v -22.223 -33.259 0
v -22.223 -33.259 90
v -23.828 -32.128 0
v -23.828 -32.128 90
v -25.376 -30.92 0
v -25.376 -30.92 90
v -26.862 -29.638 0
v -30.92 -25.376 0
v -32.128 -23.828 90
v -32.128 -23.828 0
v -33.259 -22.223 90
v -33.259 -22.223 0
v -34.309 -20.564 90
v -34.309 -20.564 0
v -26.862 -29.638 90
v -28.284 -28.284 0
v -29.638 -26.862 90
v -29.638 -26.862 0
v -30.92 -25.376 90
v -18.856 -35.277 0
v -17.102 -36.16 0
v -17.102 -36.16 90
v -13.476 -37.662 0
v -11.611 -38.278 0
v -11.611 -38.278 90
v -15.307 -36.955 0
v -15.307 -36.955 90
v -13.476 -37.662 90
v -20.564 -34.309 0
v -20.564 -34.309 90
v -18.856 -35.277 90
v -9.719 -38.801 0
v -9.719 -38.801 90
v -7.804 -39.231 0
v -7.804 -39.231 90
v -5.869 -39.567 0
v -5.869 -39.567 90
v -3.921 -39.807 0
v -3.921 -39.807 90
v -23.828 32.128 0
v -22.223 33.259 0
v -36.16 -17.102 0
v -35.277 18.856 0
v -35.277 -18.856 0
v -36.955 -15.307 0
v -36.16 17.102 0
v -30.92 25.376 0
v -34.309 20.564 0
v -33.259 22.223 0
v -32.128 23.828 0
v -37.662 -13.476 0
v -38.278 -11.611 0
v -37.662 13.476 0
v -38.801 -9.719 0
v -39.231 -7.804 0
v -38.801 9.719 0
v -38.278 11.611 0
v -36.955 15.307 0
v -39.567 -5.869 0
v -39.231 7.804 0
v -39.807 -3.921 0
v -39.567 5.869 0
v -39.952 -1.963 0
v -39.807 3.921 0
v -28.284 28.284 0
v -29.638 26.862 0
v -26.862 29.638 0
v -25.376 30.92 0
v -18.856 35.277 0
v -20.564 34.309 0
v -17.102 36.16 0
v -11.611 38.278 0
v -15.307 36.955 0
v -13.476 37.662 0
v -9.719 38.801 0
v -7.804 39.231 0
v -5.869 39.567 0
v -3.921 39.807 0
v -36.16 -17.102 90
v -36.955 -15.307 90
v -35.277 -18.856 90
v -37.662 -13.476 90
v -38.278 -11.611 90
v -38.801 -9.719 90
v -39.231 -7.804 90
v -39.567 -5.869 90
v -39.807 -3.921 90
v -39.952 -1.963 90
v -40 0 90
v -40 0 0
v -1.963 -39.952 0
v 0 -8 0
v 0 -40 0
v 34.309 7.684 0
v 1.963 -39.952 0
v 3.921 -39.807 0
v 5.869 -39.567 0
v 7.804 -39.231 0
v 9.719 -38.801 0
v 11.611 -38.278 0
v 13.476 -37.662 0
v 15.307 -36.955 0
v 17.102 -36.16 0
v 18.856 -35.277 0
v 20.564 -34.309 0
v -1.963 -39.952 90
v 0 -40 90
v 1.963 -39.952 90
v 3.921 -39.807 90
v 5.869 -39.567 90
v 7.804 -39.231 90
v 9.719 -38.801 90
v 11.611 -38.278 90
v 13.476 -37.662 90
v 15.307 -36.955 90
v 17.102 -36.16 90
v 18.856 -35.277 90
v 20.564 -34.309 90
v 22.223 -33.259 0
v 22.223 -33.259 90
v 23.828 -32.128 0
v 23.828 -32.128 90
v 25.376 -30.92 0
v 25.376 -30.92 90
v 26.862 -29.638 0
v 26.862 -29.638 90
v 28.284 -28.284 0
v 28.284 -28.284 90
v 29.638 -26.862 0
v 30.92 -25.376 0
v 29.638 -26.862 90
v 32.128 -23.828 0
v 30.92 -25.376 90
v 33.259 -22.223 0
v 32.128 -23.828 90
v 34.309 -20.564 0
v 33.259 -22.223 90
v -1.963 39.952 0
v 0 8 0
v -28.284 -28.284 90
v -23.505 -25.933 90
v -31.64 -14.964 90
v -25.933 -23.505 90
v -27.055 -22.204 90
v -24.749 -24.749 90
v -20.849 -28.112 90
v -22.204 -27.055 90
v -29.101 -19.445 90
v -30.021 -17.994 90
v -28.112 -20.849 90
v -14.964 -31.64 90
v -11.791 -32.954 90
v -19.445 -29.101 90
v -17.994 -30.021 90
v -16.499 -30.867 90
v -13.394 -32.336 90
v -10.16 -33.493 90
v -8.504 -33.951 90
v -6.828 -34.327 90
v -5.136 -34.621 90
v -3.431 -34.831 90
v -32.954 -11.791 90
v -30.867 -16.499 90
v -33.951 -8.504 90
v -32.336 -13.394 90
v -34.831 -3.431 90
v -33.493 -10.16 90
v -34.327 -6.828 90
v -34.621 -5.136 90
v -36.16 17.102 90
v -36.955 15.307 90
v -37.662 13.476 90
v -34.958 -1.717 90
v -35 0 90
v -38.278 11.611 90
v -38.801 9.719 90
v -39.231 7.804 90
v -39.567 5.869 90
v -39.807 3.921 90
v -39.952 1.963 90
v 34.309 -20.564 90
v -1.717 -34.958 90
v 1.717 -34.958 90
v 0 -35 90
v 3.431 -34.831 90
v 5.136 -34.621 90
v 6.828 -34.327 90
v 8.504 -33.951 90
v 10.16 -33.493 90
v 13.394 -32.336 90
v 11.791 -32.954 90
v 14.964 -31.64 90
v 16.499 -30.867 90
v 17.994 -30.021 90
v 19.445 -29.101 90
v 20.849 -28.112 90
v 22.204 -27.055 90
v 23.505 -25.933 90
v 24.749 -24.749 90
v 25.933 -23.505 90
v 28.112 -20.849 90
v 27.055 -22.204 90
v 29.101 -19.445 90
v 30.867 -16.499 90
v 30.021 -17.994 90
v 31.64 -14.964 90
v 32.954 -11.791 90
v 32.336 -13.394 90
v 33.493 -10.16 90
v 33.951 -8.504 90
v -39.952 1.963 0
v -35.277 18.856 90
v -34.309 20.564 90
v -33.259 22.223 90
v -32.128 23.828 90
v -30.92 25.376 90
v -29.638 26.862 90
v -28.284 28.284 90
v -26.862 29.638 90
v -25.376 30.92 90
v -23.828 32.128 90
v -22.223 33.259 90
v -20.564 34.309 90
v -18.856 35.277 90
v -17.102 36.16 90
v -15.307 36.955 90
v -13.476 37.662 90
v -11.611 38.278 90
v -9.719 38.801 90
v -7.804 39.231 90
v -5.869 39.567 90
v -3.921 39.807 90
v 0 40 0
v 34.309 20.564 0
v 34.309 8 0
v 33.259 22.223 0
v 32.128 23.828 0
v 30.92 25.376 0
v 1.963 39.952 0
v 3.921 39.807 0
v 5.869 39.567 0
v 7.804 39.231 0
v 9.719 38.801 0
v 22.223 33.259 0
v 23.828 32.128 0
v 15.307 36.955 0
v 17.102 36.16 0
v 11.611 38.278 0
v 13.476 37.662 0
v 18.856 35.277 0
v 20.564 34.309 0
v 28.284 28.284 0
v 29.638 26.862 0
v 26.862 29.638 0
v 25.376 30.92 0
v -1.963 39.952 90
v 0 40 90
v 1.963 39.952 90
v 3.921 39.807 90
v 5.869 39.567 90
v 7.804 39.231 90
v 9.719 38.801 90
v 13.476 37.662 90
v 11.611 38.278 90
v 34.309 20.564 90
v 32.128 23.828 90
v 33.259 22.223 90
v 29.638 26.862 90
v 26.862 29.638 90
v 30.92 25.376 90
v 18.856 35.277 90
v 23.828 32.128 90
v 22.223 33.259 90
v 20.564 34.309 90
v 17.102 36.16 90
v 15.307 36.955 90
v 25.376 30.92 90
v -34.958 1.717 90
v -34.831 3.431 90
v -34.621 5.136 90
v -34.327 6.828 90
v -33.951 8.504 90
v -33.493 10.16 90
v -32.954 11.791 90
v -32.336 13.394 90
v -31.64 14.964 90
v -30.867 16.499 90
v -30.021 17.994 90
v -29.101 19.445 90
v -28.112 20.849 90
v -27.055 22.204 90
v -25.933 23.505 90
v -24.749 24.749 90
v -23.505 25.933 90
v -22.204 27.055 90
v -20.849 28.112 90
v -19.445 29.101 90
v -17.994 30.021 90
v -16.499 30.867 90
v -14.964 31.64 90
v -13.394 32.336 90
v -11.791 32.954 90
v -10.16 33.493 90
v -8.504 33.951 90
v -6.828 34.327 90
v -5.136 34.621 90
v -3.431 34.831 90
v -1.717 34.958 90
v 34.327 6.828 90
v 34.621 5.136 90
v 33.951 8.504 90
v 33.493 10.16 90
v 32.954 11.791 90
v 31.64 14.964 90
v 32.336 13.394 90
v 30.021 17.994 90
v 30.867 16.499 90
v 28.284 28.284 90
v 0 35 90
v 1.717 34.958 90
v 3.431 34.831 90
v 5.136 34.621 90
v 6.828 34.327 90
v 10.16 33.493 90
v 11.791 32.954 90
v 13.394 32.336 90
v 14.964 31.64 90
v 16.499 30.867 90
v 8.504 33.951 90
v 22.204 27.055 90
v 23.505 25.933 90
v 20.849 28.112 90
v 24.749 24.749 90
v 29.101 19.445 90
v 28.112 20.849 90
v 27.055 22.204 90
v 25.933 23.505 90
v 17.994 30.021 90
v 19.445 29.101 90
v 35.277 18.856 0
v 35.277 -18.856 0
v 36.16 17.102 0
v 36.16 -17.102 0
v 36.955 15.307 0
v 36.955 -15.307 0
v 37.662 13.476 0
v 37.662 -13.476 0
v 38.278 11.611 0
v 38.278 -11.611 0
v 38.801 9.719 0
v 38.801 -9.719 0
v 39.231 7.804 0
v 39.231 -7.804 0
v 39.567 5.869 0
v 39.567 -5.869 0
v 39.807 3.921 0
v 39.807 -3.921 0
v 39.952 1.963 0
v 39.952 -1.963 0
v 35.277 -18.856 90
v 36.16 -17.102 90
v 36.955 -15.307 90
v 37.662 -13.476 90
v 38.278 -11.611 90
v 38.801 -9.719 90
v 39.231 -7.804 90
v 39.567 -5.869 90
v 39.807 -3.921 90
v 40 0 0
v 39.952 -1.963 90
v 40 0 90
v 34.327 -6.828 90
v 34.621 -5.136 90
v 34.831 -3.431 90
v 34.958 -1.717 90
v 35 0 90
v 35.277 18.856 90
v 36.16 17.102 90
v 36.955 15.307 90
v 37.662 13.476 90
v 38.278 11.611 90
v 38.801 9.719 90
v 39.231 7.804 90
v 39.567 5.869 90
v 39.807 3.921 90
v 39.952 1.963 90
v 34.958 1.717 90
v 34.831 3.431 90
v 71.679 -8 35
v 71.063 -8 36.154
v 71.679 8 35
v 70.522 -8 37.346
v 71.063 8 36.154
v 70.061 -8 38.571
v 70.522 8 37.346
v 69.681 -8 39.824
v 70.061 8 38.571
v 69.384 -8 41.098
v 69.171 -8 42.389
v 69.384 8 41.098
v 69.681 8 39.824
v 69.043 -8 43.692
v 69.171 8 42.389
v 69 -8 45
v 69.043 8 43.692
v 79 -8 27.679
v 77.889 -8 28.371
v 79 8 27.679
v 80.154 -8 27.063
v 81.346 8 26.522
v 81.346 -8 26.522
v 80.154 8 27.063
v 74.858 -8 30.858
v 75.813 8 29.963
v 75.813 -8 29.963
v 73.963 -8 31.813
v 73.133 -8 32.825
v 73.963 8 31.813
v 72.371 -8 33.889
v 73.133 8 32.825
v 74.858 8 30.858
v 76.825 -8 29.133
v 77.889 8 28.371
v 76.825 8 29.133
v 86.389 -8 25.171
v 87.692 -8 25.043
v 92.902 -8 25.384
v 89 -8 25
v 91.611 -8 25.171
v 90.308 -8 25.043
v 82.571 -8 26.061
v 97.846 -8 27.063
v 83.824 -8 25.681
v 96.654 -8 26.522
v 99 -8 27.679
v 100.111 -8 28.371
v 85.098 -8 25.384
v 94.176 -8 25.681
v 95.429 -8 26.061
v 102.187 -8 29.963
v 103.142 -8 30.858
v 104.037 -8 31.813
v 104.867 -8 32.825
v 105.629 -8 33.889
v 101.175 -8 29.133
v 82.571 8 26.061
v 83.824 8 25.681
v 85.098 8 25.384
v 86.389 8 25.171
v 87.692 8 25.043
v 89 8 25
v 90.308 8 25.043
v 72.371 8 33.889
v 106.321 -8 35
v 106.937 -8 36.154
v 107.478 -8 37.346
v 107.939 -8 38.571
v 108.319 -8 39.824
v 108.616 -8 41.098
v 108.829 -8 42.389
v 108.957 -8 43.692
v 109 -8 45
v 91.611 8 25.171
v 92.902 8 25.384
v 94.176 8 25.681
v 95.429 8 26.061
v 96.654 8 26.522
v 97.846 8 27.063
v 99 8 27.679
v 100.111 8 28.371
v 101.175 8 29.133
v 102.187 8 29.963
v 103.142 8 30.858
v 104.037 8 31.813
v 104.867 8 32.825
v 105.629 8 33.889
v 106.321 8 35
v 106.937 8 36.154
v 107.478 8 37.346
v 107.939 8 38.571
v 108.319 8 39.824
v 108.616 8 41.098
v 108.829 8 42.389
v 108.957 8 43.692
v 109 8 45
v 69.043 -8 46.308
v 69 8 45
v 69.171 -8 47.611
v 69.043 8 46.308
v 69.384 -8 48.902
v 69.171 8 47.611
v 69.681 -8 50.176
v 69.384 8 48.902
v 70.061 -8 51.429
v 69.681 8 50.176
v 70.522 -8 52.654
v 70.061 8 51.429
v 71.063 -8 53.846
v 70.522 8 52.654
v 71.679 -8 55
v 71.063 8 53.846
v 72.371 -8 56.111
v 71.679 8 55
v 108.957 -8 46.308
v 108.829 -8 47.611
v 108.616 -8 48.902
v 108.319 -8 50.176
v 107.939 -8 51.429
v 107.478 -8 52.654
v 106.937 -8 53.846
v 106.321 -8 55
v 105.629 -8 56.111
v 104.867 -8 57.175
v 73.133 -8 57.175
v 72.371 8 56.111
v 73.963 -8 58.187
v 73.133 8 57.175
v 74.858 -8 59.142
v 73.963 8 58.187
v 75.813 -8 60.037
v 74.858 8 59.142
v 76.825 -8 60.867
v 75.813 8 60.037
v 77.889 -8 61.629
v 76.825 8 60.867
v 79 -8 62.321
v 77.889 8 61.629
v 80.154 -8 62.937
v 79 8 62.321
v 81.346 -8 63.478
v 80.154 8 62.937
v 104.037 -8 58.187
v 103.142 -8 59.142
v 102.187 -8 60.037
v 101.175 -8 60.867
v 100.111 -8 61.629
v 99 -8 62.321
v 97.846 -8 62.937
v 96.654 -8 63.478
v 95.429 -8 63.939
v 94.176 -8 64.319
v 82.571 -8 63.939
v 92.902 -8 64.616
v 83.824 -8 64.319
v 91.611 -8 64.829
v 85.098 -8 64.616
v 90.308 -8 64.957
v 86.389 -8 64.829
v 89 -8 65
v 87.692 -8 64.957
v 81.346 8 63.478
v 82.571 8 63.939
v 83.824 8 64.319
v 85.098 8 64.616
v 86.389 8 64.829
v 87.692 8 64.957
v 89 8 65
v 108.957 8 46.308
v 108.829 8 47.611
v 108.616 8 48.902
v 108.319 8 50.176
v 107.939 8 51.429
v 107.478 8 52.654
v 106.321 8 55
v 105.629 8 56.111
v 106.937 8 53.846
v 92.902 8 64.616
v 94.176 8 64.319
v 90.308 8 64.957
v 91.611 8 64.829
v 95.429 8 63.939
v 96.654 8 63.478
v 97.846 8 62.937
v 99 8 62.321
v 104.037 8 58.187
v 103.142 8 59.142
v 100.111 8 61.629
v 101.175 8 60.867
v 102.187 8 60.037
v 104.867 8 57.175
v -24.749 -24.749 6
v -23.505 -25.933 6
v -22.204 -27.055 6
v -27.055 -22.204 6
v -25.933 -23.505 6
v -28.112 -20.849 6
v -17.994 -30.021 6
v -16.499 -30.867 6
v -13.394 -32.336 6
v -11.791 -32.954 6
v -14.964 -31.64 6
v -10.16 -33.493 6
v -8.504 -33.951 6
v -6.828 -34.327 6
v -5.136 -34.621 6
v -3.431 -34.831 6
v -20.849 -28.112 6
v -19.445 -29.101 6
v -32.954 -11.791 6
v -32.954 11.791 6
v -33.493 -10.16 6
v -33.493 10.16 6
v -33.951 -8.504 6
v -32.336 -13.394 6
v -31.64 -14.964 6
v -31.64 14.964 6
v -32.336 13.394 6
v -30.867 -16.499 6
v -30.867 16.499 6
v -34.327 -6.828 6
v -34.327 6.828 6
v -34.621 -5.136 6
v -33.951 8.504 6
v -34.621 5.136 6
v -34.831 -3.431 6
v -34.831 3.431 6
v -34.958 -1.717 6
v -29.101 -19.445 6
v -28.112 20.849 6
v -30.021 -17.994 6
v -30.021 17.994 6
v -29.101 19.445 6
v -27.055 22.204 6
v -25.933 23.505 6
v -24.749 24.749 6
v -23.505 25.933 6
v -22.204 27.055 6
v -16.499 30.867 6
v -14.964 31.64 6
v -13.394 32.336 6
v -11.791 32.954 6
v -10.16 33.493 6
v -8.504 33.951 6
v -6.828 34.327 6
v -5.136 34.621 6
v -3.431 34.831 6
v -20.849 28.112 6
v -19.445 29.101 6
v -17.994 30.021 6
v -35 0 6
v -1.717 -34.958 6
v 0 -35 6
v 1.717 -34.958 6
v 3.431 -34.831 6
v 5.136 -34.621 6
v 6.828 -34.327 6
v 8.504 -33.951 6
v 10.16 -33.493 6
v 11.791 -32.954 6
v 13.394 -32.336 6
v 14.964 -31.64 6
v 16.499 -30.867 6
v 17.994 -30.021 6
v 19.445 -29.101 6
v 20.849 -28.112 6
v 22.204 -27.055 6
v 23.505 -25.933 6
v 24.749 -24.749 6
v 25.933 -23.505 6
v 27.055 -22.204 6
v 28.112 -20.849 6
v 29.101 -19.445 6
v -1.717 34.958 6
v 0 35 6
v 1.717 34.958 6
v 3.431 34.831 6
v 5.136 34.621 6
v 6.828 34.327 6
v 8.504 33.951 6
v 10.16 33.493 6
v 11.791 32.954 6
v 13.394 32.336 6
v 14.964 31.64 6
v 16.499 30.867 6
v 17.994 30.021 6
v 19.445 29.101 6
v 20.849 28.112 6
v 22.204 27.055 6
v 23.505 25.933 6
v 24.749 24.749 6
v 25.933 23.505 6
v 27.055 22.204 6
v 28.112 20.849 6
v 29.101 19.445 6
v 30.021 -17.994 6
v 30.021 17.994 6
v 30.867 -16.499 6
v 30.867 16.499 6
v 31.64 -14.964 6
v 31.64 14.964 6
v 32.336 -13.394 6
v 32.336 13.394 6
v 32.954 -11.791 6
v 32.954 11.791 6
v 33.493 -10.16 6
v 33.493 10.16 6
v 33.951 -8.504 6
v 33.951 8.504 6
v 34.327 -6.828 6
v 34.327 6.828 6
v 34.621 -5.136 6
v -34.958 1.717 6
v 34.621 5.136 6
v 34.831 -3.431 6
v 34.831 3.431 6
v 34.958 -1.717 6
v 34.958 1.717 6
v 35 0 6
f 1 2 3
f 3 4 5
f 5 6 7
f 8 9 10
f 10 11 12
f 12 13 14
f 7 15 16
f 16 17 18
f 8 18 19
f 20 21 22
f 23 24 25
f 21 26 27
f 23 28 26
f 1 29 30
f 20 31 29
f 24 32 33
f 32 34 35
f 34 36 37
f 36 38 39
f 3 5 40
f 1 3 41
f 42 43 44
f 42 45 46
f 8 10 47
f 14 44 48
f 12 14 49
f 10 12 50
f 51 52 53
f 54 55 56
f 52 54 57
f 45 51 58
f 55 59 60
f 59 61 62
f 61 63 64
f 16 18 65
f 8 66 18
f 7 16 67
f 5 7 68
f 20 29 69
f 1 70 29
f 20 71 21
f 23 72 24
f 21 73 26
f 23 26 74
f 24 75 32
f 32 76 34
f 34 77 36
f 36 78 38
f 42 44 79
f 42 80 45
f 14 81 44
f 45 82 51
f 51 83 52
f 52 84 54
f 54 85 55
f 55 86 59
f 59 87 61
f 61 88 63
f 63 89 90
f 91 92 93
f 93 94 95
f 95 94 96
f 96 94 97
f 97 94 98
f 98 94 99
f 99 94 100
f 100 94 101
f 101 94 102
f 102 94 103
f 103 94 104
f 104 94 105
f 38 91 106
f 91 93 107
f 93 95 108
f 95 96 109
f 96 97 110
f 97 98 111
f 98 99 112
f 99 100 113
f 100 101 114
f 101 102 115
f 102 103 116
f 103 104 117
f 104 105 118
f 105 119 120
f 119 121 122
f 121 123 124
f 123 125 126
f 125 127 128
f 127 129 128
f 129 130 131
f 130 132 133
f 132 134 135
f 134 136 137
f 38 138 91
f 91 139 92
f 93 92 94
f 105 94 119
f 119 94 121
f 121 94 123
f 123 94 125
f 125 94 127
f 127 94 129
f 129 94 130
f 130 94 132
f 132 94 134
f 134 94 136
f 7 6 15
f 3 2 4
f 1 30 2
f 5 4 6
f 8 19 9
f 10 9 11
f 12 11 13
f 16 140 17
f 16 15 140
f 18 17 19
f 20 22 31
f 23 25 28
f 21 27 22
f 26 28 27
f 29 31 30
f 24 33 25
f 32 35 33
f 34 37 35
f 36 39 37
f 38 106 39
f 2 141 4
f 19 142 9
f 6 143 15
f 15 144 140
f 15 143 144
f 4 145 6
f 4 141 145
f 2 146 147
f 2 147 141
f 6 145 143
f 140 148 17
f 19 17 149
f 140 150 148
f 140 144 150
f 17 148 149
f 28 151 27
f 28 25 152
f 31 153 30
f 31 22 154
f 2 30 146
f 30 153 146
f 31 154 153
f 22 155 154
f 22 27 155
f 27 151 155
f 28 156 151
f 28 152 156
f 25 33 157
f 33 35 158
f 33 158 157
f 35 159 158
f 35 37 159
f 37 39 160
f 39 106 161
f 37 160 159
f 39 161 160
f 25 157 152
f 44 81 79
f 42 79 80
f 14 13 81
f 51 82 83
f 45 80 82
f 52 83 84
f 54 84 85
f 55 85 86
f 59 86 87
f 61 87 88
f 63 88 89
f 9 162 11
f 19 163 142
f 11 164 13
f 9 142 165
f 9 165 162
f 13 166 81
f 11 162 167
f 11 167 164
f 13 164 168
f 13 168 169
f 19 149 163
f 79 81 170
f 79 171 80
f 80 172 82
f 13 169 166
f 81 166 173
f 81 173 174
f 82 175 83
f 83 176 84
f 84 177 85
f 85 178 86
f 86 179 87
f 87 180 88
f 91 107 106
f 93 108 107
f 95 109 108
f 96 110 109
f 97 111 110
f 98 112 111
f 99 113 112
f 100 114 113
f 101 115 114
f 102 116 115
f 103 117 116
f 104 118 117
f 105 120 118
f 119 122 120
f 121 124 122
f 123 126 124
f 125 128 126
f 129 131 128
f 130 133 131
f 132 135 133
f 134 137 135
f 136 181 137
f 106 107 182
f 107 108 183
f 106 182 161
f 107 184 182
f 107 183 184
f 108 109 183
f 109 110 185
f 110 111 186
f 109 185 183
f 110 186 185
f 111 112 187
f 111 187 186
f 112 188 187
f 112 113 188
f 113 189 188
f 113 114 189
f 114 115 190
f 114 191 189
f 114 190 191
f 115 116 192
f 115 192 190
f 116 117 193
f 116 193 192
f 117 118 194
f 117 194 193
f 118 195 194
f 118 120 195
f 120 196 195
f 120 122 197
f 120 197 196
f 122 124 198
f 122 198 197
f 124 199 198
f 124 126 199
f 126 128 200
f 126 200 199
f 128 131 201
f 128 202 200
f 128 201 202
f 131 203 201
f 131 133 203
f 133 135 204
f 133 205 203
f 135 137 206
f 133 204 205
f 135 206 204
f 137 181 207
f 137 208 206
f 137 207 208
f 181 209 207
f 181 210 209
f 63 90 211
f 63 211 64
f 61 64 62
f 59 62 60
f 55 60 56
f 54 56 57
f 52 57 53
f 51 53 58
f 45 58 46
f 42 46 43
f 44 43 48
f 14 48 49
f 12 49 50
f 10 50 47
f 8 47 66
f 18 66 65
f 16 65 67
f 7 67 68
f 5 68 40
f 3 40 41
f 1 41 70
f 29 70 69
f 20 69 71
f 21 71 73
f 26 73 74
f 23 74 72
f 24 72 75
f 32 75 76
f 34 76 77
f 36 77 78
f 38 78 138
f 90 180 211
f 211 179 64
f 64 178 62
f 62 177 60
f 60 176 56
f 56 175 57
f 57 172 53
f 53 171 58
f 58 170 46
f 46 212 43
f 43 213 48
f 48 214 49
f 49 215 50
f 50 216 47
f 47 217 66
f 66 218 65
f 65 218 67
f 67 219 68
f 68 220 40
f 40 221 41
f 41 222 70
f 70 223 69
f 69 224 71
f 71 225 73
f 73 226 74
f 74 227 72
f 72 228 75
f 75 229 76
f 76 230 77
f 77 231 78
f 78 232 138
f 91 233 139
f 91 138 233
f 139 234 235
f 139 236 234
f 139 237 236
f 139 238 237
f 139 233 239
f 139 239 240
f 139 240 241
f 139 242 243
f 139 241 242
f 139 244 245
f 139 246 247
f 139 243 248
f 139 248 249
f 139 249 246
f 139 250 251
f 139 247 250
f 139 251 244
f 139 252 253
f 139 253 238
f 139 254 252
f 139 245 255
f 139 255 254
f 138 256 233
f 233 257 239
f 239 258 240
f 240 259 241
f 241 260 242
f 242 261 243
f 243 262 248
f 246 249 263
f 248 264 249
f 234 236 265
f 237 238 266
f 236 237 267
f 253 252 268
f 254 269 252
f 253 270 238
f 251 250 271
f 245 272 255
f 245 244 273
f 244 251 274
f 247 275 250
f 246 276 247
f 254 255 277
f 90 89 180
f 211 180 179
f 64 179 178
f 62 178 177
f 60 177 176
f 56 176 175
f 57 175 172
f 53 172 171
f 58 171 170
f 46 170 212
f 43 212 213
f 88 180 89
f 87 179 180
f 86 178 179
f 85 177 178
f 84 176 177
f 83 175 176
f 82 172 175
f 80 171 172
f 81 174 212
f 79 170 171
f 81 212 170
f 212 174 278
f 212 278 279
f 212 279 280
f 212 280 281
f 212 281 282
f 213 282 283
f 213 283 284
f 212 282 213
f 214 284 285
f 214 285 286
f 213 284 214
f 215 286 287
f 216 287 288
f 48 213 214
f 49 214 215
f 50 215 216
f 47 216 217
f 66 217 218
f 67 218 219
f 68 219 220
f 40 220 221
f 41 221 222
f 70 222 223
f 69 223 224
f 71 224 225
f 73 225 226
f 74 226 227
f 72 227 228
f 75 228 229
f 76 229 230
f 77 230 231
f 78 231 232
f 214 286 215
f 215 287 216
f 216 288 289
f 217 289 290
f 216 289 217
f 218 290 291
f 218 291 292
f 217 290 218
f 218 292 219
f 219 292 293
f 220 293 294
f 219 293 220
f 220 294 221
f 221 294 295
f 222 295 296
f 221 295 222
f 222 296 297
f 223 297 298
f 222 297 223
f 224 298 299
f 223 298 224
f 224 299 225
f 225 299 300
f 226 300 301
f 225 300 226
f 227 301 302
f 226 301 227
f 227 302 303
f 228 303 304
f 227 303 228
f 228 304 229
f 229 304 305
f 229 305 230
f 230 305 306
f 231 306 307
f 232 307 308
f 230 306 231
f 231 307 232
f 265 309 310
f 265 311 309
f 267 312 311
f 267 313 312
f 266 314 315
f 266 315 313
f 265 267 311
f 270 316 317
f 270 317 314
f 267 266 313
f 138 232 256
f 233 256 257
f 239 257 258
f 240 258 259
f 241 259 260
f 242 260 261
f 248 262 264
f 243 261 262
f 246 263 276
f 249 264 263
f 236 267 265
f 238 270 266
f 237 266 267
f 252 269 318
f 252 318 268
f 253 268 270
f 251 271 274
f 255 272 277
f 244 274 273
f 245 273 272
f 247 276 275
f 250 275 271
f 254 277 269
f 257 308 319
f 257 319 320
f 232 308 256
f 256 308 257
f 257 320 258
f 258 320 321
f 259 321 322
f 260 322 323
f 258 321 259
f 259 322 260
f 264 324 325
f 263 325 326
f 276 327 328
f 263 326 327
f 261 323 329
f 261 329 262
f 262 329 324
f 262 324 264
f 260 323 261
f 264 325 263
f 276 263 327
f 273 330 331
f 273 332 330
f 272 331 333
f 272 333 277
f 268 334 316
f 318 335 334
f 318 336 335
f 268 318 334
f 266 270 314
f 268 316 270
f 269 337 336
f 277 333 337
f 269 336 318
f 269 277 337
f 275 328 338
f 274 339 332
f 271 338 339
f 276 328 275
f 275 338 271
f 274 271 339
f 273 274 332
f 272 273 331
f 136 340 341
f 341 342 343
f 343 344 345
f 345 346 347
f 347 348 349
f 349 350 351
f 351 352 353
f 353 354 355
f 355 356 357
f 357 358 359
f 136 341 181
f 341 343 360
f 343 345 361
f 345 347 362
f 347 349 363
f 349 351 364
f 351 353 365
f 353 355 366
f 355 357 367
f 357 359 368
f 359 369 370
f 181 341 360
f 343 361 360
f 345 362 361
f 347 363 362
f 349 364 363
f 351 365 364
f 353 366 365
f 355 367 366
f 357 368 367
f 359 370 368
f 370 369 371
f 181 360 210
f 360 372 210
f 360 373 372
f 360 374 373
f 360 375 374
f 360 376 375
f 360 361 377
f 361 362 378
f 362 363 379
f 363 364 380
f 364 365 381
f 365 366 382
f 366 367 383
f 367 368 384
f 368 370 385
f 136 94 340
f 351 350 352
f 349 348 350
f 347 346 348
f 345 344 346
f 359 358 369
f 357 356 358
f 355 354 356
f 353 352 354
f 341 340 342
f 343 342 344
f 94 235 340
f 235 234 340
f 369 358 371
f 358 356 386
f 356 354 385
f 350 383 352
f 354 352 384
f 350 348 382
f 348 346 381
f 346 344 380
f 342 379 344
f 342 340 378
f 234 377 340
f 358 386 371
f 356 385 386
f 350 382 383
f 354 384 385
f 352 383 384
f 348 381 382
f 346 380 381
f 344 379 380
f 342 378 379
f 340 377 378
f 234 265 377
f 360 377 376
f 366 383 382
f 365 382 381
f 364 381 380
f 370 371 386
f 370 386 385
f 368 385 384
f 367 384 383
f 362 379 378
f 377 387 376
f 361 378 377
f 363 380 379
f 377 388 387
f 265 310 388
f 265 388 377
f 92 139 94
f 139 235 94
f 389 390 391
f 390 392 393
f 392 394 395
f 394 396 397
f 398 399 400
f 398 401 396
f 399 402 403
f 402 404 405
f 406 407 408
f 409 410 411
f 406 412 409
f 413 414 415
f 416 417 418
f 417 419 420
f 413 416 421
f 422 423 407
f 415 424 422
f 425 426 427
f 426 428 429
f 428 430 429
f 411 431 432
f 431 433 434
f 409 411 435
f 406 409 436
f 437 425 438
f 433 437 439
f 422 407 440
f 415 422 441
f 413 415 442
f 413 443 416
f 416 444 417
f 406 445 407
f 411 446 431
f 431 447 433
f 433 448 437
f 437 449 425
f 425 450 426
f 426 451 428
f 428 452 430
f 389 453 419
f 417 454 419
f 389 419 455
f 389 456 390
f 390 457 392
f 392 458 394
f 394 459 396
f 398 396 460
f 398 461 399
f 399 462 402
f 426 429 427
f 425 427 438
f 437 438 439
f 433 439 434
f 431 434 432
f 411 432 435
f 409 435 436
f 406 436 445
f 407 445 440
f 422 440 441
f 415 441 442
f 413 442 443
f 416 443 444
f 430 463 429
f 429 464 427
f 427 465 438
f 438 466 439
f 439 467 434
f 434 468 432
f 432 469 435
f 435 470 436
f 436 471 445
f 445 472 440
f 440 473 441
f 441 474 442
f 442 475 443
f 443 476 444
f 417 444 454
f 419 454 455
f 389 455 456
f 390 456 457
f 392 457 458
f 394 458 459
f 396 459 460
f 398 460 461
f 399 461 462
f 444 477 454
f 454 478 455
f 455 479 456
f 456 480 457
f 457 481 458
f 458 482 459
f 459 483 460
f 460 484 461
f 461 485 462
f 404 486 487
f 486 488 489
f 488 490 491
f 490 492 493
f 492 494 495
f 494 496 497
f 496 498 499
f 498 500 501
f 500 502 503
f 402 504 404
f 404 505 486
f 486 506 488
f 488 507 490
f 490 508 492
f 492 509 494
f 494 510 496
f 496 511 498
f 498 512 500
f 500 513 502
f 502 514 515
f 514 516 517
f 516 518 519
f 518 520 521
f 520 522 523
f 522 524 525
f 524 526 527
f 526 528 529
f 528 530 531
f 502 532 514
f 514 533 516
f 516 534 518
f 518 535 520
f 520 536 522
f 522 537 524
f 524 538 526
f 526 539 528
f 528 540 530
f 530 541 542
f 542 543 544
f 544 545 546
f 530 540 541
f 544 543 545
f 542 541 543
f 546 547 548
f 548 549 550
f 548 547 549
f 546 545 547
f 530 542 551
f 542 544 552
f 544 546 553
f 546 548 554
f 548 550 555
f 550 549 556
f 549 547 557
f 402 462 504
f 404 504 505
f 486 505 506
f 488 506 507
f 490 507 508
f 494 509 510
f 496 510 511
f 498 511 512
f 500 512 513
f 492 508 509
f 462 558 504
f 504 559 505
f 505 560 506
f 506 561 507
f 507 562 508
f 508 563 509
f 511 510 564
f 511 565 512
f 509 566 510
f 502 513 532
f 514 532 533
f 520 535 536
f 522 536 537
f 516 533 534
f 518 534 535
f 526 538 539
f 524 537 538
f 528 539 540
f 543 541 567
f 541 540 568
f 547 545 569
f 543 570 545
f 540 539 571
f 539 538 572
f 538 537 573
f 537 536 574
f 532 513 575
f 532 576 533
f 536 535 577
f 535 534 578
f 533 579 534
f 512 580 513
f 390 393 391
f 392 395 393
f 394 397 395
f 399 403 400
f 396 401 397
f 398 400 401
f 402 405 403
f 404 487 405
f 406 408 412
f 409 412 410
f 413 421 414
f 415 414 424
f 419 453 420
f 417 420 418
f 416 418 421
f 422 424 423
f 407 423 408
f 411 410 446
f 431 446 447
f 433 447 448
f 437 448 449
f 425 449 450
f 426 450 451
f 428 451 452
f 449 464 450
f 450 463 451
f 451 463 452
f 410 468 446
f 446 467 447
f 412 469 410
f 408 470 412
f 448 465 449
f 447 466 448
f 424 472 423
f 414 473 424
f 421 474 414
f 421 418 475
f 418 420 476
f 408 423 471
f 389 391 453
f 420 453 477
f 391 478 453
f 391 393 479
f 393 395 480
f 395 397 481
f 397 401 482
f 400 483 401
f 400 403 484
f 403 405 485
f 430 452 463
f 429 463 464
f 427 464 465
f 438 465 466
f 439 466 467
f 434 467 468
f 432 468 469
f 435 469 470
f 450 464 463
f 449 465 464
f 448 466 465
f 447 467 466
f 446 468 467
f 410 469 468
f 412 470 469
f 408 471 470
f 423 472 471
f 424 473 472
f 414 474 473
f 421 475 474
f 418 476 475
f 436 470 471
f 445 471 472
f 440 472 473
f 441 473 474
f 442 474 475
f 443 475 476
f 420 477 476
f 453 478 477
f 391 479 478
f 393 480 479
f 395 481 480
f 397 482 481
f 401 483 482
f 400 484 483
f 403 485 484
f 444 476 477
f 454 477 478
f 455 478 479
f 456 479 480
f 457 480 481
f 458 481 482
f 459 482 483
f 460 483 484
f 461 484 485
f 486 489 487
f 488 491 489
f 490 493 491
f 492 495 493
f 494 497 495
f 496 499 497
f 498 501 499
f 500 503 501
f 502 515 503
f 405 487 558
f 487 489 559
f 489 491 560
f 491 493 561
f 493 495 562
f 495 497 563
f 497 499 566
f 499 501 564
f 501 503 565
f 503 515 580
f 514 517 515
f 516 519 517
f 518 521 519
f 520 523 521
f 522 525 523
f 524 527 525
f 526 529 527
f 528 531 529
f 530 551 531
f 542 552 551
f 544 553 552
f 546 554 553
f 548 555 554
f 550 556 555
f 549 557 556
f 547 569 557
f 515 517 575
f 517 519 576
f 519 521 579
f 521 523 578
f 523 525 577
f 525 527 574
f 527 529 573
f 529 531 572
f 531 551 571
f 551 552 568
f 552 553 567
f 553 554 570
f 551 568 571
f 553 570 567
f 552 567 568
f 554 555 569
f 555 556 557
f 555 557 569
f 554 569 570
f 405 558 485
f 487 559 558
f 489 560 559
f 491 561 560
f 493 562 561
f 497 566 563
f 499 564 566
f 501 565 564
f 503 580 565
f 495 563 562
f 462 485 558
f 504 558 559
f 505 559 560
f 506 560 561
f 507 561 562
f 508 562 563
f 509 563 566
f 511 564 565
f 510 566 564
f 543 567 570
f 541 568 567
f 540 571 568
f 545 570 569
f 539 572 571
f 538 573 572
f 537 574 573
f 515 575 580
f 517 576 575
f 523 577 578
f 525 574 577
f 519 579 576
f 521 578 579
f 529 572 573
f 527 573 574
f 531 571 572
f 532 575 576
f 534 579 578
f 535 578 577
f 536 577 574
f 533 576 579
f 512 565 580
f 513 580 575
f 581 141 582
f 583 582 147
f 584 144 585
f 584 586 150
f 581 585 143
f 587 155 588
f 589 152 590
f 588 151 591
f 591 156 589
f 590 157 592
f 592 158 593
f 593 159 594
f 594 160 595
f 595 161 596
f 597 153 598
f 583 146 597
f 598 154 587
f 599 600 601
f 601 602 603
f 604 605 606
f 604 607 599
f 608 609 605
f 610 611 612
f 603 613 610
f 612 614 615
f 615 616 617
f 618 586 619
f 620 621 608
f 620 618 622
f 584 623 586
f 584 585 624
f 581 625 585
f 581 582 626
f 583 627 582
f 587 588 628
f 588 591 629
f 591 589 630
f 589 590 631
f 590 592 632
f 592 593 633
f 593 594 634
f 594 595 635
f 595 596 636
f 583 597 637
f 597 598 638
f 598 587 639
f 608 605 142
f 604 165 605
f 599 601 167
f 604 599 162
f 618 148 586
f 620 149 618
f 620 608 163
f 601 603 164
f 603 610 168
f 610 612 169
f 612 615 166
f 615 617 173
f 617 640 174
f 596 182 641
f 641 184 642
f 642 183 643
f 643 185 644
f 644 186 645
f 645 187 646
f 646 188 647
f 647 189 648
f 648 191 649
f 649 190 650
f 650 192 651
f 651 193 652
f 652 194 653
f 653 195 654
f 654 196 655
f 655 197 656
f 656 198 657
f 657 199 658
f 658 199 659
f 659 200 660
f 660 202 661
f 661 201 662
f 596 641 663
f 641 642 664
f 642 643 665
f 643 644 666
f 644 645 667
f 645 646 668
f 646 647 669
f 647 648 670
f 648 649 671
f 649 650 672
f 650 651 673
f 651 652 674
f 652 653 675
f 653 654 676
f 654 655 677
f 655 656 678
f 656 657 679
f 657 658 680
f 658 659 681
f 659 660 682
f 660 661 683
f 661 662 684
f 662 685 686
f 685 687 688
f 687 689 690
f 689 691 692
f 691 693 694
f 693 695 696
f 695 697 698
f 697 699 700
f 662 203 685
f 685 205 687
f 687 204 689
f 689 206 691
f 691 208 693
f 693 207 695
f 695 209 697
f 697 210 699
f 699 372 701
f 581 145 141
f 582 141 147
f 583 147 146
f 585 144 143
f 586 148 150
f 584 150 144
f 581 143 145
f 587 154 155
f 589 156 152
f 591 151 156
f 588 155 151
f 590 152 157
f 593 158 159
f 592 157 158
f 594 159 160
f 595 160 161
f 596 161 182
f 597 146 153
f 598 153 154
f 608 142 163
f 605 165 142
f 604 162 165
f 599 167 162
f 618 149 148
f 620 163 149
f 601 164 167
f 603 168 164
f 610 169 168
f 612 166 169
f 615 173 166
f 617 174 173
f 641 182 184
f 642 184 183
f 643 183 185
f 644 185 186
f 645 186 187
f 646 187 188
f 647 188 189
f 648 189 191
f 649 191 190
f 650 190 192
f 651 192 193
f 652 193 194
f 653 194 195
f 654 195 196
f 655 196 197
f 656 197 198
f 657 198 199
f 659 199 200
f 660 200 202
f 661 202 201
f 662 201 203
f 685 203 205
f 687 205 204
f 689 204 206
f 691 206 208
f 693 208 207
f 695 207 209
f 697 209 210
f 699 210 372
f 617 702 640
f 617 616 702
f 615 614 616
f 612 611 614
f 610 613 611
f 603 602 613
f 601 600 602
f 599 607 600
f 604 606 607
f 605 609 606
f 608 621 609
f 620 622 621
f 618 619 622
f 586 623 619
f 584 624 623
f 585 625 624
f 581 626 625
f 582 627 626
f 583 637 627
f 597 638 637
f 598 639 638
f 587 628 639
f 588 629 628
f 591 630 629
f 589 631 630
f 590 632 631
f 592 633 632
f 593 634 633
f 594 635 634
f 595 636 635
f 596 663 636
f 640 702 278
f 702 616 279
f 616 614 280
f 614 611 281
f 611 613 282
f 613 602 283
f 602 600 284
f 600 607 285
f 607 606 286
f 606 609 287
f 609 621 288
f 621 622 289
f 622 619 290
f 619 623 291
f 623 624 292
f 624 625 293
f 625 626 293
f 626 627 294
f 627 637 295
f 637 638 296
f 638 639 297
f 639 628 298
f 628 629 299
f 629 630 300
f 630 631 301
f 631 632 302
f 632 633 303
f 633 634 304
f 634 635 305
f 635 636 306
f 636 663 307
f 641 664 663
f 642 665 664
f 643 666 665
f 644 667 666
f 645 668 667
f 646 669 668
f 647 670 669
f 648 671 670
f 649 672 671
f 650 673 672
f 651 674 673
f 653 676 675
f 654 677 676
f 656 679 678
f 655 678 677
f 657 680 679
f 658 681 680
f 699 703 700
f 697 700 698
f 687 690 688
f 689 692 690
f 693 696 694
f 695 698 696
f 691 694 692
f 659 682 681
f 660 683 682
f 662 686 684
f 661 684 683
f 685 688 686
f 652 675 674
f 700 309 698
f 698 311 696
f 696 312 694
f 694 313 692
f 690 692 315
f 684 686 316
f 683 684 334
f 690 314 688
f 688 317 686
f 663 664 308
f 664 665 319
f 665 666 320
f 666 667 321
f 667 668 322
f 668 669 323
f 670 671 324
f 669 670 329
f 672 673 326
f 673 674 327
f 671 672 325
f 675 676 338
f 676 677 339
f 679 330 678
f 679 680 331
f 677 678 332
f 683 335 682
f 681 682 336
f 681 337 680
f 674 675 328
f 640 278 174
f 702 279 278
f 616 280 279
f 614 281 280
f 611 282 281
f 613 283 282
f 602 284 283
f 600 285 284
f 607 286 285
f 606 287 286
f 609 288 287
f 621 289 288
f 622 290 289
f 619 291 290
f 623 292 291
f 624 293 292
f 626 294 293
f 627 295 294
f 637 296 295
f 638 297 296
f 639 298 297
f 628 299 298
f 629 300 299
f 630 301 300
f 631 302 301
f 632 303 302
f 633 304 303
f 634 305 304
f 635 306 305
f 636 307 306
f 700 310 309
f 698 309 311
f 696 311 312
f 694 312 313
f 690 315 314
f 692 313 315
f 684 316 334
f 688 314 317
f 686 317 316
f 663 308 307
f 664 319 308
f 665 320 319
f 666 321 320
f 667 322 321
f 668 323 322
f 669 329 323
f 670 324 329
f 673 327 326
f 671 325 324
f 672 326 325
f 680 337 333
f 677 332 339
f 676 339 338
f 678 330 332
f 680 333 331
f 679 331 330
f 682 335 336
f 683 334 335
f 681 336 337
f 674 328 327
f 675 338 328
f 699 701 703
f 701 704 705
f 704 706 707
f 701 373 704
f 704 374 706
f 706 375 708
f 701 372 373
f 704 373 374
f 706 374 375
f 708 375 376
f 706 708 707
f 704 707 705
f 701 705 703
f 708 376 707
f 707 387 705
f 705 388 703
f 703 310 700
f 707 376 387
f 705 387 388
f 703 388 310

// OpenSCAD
// Parameters
outer_d = 80;        // outer diameter (mm)
inner_d = 70;        // inner diameter (mm)
height  = 90;        // mug height (mm)
bottom_thick = 6;    // bottom thickness (mm)
r_outer = outer_d/2;
r_inner = inner_d/2;

// Handle parameters
handle_inner_w = 25; // inner space width (mm)
handle_inner_h = 30; // inner space height (mm)
handle_thick   = 5;  // ring thickness around inner space (mm)
handle_depth   = 16; // extrusion depth along Y (mm)
z_mid = height/2;    // center height

// Construct mug with handle and inner cavity
difference() {
  // Solid: body + handle
  union() {
    // Mug outer solid
    cylinder(h=height, r=r_outer, $fn=128);

    // D-shaped handle on +X side
    // Build 2D profile in X-Y (Y used as Z), then extrude along Z and rotate to Y
    // Ensure strong union by intruding flat side slightly into the mug (x0 < r_outer)
    handle_2d_zmid(z_mid);
  }

  // Hollow interior (leaves 6mm bottom)
  translate([0,0,bottom_thick])
    cylinder(h=height - bottom_thick, r=r_inner, $fn=128);
}

// Handle module
module handle_2d_zmid(zc) {
  H  = handle_inner_h + 2*handle_thick;  // outer D height
  R  = H/2;                               // radius for semicircle
  x0 = r_outer - 6;                       // flat side position (slightly inside mug to ensure union)
  rectW = handle_inner_w + 2*handle_thick;

  // 2D D-shape in X-Y (Y corresponds to Z), then extrude along Z and rotate to Y
  rotate([90,0,0])  // Z -> -Y
    linear_extrude(height=handle_depth, center=true, convexity=10)
      difference() {
        union() {
          // Flat section
          square([rectW, H], center=false)
            translate([x0, zc - H/2]);

          // Semicircular outer end
          translate([x0 + rectW + R, zc])
            circle(r=R, $fn=96);
        }
        // Inner opening (rectangular void)
        translate([x0 + handle_thick, zc - handle_inner_h/2])
          square([handle_inner_w, handle_inner_h], center=false);
      }
}
